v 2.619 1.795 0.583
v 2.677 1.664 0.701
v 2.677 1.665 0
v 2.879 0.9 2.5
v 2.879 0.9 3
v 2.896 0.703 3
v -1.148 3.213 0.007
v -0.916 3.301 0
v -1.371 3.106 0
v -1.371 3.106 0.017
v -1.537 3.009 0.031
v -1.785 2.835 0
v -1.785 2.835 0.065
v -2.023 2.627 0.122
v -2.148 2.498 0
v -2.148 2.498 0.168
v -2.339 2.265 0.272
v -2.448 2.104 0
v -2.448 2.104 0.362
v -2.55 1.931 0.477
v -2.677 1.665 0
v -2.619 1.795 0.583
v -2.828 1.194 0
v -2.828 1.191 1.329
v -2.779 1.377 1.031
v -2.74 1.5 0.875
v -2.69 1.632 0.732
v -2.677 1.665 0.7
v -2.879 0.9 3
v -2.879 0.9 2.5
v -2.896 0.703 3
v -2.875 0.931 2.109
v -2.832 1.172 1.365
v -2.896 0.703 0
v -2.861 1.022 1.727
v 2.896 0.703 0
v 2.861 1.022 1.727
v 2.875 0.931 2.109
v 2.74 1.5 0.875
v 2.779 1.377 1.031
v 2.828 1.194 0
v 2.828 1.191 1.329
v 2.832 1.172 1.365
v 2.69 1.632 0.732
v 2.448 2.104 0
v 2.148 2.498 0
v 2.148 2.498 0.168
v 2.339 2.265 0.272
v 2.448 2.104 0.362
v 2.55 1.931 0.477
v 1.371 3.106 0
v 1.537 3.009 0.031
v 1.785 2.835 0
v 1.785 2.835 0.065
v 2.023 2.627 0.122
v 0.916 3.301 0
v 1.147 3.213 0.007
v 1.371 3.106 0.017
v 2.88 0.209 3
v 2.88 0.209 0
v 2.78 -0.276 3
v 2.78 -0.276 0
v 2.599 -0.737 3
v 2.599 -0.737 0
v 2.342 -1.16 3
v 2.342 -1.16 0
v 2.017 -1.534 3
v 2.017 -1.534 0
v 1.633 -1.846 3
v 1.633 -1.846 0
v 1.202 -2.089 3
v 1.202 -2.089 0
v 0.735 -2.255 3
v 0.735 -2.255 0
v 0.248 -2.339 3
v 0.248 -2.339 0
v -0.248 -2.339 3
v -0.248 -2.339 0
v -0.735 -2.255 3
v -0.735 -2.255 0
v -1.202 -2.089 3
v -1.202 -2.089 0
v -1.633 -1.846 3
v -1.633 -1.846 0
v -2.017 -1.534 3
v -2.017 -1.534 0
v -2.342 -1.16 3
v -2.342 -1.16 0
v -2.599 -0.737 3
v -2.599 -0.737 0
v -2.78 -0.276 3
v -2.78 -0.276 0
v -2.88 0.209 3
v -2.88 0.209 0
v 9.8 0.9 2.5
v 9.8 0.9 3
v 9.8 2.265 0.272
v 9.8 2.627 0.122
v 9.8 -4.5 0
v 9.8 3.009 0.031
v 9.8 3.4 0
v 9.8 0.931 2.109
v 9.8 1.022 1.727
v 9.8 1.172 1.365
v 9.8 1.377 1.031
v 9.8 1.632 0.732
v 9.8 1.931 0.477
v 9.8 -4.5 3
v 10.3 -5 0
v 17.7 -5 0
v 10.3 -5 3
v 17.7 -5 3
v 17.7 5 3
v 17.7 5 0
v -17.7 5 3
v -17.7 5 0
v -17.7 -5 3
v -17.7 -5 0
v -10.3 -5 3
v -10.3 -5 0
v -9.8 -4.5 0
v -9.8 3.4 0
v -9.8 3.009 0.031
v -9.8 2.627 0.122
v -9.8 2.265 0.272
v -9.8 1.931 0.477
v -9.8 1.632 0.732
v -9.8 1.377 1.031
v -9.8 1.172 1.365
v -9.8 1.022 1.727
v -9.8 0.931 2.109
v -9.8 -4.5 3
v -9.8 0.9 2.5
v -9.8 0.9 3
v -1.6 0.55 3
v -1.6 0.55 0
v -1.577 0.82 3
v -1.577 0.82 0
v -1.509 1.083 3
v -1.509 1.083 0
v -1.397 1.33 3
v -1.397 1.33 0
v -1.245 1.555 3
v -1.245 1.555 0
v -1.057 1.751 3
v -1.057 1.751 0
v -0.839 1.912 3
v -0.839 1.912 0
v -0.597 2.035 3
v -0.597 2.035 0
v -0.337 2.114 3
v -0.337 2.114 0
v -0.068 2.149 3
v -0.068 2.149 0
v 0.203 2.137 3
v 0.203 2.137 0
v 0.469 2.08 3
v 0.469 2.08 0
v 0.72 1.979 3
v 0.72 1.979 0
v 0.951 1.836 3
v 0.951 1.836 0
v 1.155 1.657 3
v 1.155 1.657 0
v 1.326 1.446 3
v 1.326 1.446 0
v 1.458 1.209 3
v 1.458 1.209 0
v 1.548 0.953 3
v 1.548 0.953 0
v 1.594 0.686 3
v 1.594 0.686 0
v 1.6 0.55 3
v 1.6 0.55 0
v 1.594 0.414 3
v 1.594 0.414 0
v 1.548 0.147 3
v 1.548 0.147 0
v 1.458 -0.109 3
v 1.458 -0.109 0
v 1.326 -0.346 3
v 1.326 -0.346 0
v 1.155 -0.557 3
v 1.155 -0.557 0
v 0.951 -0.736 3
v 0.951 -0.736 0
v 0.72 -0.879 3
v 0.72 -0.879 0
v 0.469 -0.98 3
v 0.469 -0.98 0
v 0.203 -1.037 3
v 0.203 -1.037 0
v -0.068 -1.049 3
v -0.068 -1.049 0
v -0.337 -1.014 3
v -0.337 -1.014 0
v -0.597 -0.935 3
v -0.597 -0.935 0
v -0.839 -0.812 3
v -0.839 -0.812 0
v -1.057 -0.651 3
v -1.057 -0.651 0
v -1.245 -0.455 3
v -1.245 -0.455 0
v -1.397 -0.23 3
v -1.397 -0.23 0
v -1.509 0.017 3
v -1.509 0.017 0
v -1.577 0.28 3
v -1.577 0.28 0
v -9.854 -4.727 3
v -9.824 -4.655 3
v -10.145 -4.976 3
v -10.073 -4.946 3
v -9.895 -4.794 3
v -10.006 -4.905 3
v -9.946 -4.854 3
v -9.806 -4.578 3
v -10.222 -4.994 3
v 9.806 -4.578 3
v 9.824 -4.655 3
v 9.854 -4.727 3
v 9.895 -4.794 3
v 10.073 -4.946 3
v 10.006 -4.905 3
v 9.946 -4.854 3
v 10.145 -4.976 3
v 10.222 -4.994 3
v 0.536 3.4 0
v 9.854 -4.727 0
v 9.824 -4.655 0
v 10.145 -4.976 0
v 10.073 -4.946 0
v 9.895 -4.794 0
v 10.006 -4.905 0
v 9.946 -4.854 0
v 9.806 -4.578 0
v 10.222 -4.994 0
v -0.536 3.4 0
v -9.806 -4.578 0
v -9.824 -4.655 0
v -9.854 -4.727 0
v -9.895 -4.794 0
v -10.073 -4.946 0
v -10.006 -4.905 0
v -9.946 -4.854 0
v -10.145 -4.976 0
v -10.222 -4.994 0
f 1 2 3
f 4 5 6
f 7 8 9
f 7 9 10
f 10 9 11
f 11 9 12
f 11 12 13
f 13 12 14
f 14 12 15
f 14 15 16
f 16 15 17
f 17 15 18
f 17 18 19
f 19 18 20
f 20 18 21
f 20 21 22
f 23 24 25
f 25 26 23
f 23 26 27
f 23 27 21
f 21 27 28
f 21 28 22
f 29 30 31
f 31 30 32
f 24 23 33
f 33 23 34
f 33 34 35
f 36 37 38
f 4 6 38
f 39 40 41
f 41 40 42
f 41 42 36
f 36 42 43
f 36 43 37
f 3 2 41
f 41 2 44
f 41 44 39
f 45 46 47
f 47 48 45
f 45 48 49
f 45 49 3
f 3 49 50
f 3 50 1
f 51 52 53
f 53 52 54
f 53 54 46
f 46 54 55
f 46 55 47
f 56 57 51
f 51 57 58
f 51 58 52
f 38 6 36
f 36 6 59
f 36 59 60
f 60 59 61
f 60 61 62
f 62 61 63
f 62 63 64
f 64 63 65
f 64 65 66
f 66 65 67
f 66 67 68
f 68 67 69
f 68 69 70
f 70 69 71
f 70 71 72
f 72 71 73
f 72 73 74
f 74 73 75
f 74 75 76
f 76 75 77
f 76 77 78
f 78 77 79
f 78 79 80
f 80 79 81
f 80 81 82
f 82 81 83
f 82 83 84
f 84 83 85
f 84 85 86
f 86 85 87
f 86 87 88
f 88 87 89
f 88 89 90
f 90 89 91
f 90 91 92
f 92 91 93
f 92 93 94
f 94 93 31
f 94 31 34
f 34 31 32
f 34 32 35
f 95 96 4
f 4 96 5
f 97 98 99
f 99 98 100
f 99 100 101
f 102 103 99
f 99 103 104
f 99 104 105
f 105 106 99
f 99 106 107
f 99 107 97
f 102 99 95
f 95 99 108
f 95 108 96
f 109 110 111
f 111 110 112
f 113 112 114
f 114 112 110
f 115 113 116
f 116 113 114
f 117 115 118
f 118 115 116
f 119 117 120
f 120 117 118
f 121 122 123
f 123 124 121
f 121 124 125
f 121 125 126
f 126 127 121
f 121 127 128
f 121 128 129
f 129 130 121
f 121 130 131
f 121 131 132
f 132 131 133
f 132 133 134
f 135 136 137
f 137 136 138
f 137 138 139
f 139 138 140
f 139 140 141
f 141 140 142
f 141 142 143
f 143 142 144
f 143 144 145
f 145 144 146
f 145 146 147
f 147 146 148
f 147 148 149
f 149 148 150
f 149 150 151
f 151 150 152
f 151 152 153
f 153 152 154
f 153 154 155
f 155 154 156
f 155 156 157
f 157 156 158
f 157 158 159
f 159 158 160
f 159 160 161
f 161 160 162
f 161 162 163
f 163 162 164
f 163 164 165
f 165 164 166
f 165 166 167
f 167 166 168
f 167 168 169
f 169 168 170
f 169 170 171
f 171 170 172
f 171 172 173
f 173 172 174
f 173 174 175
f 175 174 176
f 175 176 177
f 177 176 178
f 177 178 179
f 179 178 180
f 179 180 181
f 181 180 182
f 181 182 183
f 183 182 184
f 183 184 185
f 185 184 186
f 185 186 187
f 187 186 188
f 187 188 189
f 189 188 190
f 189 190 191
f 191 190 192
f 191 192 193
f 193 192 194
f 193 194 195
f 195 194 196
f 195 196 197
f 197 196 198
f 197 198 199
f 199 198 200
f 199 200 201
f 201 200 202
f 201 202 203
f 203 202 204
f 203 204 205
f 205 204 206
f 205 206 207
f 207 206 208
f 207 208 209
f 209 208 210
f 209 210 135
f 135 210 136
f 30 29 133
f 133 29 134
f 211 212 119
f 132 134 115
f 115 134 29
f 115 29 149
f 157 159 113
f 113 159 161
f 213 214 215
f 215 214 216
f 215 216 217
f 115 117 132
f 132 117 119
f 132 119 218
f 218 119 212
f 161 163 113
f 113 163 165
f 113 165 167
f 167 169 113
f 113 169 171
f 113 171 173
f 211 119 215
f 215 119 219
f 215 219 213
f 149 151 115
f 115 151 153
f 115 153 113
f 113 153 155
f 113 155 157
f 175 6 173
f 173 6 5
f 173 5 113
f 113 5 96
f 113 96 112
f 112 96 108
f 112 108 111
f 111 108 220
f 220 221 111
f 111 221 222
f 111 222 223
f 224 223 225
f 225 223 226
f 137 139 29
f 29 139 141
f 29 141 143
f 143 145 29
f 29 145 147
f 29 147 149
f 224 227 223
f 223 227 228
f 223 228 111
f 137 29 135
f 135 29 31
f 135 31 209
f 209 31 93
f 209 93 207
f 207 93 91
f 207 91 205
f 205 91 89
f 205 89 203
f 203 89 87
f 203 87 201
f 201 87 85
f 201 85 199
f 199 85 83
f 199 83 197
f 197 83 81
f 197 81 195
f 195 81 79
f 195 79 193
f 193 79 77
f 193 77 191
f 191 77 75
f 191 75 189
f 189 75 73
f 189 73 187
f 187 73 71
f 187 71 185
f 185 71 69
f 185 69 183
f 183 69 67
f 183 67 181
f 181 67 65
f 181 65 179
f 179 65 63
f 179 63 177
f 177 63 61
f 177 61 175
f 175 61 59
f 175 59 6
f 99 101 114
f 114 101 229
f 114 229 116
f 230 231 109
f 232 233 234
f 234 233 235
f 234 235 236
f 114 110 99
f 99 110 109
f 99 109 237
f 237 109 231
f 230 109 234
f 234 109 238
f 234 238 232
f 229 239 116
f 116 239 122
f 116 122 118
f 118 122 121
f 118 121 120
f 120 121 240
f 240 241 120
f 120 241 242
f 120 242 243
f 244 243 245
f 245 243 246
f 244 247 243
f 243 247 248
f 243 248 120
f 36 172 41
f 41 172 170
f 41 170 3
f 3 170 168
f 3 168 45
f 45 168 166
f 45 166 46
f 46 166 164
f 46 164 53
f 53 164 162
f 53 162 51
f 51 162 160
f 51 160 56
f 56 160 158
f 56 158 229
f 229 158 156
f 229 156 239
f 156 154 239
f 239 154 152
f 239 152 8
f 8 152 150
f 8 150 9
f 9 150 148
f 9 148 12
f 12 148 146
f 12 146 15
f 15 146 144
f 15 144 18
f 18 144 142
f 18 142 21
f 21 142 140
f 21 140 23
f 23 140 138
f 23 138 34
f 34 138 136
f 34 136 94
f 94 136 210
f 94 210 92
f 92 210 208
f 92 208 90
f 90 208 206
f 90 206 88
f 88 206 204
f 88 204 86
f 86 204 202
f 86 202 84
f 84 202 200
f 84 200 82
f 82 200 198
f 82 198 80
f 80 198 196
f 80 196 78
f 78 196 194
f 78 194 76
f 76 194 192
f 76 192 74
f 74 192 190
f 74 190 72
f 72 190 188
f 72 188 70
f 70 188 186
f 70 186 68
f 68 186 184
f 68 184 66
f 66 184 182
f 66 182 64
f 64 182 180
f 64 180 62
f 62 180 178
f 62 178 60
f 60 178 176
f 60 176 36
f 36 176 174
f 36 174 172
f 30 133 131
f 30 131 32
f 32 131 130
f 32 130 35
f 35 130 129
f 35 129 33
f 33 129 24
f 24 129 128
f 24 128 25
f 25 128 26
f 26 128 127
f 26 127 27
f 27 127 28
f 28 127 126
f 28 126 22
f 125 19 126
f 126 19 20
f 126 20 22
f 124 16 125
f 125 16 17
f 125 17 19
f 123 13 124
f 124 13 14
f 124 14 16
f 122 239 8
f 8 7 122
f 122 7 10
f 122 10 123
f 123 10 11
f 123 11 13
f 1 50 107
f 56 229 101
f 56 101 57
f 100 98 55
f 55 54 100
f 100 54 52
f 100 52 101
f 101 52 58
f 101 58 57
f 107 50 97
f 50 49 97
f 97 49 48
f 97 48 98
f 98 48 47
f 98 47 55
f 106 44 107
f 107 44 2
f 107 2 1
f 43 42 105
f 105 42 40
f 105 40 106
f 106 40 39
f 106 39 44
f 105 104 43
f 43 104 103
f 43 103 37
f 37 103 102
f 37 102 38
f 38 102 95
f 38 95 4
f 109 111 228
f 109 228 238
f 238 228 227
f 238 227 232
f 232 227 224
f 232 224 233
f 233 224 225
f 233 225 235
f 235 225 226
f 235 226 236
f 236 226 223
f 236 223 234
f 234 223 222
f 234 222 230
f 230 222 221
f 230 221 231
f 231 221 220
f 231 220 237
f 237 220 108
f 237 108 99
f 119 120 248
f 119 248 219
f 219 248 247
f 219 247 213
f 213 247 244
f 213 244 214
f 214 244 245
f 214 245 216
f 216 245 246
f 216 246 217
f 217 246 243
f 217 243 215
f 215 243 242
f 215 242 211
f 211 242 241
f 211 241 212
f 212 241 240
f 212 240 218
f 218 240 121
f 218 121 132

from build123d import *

# Parameters (mm, degrees)
SKETCH2_R           = 1.6
BOSS_EXTRUDE2_DEPTH = 3
FILLET1_R           = 2.5
FILLET2_R           = 0.5


with BuildPart() as part:
    # Sketch2 → Boss-Extrude2 (new body)
    with BuildSketch(Plane.XY):
        with BuildLine():
            Line((9.8, 0.9), (9.8, -5))
            Line((9.8, -5), (17.7, -5))
            Line((17.7, -5), (17.7, 5))
            Line((17.7, 5), (-17.7, 5))
            Line((-17.7, 5), (-17.7, -5))
            Line((-17.7, -5), (-9.8, -5))
            Line((-9.8, -5), (-9.8, 0.9))
            Line((-9.8, 0.9), (-2.878801834, 0.9))
            ThreePointArc((-2.878801834, 0.9), (0, -2.35), (2.878801834, 0.9))
            Line((2.878801834, 0.9), (9.8, 0.9))
        make_face()
        with Locations((0, 0.55)):
            Circle(SKETCH2_R, mode=Mode.SUBTRACT)
    extrude(amount=BOSS_EXTRUDE2_DEPTH)

    # Fillet1
    fillet1_edges = [part.edges().sort_by_distance(p)[0] for p in [
        (-6.339400917, 0.9, 0),
        (6.339400917, 0.9, 0),
    ]]
    fillet(fillet1_edges, radius=FILLET1_R)

    # Fillet2
    fillet2_edges = [part.edges().sort_by_distance(p)[0] for p in [
        (-9.8, -5, 1.5),
        (9.8, -5, 1.5),
    ]]
    fillet(fillet2_edges, radius=FILLET2_R)


solid = part.part
